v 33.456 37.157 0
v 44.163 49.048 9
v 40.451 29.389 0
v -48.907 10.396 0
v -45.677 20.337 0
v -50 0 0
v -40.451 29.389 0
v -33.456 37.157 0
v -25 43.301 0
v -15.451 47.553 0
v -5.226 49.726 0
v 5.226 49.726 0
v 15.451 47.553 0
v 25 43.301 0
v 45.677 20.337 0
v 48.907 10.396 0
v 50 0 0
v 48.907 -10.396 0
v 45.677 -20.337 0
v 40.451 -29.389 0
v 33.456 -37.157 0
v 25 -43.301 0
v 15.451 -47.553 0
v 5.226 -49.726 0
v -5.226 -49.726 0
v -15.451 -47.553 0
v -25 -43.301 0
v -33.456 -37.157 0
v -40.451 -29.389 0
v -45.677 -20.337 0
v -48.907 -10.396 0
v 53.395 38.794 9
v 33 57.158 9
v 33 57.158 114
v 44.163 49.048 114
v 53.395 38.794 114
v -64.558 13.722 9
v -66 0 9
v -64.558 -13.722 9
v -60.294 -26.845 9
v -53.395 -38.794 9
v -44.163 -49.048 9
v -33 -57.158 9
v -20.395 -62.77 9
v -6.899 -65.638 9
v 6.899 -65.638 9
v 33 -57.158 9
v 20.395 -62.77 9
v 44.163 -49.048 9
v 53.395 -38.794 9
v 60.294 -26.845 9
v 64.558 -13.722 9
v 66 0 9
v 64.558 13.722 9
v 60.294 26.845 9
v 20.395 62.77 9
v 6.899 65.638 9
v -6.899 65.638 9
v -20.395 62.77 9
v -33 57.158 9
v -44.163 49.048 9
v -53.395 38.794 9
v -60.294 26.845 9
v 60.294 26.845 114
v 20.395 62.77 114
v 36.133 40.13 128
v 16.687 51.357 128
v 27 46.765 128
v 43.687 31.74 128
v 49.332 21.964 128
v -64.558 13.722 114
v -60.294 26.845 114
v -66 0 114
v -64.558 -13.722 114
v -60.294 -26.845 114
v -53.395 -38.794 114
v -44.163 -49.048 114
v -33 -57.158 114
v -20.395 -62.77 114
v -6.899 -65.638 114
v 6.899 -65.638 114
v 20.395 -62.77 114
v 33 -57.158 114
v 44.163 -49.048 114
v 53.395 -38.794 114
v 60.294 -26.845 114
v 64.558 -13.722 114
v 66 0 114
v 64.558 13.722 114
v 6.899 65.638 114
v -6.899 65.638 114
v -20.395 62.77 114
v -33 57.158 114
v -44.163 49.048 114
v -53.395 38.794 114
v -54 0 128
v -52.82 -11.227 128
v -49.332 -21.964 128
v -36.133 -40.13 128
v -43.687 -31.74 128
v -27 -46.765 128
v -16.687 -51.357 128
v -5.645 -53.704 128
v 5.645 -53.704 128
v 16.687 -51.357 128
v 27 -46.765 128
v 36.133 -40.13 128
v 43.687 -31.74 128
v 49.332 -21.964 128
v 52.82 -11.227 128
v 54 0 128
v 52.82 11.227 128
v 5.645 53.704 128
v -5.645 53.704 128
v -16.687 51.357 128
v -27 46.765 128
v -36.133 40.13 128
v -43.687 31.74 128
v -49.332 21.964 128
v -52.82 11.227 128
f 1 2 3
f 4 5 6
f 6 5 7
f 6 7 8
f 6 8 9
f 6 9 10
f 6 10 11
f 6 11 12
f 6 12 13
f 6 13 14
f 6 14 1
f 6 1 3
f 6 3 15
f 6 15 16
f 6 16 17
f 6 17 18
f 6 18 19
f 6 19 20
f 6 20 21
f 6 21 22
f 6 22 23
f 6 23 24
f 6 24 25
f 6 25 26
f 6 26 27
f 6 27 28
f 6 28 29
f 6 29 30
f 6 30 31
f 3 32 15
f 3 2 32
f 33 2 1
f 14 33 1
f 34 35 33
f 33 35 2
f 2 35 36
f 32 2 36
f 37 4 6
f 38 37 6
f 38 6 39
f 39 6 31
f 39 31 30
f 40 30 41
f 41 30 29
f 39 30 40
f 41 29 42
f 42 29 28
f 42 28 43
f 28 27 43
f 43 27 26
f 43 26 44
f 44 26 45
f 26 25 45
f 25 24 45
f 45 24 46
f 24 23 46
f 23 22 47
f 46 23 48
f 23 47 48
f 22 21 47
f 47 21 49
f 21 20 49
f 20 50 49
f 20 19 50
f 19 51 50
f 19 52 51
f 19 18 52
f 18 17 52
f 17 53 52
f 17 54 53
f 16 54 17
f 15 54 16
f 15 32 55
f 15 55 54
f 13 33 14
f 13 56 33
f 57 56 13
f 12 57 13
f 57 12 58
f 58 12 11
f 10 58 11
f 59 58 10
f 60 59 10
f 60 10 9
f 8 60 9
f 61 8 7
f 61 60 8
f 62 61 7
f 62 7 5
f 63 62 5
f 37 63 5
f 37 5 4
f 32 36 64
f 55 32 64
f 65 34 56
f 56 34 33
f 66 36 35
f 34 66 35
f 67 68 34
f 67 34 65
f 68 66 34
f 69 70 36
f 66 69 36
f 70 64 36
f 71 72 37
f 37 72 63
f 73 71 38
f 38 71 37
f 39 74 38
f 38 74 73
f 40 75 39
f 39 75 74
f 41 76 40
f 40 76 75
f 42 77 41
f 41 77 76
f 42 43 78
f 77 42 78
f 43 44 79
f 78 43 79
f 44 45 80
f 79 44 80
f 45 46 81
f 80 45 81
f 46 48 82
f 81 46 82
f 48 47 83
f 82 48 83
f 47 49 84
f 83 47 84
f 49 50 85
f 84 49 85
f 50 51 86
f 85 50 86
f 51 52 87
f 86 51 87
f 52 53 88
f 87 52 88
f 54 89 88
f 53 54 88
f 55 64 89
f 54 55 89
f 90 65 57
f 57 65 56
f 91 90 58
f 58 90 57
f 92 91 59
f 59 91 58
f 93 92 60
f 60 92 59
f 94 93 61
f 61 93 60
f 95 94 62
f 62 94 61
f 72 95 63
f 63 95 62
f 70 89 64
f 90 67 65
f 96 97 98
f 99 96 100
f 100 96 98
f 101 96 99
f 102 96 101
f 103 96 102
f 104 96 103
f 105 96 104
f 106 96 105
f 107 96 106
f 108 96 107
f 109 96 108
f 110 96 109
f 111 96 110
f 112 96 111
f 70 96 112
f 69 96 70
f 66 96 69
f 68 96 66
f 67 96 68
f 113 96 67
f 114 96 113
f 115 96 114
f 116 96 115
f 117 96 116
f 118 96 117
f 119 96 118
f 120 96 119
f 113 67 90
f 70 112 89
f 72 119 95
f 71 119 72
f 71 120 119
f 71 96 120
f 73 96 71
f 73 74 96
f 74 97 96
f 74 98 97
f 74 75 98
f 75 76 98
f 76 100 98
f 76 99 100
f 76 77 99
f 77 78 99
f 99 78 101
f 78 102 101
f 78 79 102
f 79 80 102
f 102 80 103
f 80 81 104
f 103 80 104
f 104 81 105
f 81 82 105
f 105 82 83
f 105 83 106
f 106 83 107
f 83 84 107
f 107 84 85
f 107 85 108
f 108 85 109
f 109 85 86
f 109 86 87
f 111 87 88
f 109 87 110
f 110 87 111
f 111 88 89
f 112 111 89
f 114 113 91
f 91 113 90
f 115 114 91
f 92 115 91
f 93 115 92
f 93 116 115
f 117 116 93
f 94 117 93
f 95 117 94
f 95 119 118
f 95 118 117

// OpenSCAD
// TODO: Get actual measurements

module MainShape()
{
	hull()
	{
		translate([])
		cylinder(  9, 50, 50, centre=true);

		translate([0, 0, 9])
		cylinder(105, 66, 66, centre=true);

		translate([0, 0, 9+105])
		cylinder(128-9-105, 54, 54, centre=true);
	}
}

module SodaCan()
{
	difference()
	{
		MainShape();

	}
}

SodaCan();
